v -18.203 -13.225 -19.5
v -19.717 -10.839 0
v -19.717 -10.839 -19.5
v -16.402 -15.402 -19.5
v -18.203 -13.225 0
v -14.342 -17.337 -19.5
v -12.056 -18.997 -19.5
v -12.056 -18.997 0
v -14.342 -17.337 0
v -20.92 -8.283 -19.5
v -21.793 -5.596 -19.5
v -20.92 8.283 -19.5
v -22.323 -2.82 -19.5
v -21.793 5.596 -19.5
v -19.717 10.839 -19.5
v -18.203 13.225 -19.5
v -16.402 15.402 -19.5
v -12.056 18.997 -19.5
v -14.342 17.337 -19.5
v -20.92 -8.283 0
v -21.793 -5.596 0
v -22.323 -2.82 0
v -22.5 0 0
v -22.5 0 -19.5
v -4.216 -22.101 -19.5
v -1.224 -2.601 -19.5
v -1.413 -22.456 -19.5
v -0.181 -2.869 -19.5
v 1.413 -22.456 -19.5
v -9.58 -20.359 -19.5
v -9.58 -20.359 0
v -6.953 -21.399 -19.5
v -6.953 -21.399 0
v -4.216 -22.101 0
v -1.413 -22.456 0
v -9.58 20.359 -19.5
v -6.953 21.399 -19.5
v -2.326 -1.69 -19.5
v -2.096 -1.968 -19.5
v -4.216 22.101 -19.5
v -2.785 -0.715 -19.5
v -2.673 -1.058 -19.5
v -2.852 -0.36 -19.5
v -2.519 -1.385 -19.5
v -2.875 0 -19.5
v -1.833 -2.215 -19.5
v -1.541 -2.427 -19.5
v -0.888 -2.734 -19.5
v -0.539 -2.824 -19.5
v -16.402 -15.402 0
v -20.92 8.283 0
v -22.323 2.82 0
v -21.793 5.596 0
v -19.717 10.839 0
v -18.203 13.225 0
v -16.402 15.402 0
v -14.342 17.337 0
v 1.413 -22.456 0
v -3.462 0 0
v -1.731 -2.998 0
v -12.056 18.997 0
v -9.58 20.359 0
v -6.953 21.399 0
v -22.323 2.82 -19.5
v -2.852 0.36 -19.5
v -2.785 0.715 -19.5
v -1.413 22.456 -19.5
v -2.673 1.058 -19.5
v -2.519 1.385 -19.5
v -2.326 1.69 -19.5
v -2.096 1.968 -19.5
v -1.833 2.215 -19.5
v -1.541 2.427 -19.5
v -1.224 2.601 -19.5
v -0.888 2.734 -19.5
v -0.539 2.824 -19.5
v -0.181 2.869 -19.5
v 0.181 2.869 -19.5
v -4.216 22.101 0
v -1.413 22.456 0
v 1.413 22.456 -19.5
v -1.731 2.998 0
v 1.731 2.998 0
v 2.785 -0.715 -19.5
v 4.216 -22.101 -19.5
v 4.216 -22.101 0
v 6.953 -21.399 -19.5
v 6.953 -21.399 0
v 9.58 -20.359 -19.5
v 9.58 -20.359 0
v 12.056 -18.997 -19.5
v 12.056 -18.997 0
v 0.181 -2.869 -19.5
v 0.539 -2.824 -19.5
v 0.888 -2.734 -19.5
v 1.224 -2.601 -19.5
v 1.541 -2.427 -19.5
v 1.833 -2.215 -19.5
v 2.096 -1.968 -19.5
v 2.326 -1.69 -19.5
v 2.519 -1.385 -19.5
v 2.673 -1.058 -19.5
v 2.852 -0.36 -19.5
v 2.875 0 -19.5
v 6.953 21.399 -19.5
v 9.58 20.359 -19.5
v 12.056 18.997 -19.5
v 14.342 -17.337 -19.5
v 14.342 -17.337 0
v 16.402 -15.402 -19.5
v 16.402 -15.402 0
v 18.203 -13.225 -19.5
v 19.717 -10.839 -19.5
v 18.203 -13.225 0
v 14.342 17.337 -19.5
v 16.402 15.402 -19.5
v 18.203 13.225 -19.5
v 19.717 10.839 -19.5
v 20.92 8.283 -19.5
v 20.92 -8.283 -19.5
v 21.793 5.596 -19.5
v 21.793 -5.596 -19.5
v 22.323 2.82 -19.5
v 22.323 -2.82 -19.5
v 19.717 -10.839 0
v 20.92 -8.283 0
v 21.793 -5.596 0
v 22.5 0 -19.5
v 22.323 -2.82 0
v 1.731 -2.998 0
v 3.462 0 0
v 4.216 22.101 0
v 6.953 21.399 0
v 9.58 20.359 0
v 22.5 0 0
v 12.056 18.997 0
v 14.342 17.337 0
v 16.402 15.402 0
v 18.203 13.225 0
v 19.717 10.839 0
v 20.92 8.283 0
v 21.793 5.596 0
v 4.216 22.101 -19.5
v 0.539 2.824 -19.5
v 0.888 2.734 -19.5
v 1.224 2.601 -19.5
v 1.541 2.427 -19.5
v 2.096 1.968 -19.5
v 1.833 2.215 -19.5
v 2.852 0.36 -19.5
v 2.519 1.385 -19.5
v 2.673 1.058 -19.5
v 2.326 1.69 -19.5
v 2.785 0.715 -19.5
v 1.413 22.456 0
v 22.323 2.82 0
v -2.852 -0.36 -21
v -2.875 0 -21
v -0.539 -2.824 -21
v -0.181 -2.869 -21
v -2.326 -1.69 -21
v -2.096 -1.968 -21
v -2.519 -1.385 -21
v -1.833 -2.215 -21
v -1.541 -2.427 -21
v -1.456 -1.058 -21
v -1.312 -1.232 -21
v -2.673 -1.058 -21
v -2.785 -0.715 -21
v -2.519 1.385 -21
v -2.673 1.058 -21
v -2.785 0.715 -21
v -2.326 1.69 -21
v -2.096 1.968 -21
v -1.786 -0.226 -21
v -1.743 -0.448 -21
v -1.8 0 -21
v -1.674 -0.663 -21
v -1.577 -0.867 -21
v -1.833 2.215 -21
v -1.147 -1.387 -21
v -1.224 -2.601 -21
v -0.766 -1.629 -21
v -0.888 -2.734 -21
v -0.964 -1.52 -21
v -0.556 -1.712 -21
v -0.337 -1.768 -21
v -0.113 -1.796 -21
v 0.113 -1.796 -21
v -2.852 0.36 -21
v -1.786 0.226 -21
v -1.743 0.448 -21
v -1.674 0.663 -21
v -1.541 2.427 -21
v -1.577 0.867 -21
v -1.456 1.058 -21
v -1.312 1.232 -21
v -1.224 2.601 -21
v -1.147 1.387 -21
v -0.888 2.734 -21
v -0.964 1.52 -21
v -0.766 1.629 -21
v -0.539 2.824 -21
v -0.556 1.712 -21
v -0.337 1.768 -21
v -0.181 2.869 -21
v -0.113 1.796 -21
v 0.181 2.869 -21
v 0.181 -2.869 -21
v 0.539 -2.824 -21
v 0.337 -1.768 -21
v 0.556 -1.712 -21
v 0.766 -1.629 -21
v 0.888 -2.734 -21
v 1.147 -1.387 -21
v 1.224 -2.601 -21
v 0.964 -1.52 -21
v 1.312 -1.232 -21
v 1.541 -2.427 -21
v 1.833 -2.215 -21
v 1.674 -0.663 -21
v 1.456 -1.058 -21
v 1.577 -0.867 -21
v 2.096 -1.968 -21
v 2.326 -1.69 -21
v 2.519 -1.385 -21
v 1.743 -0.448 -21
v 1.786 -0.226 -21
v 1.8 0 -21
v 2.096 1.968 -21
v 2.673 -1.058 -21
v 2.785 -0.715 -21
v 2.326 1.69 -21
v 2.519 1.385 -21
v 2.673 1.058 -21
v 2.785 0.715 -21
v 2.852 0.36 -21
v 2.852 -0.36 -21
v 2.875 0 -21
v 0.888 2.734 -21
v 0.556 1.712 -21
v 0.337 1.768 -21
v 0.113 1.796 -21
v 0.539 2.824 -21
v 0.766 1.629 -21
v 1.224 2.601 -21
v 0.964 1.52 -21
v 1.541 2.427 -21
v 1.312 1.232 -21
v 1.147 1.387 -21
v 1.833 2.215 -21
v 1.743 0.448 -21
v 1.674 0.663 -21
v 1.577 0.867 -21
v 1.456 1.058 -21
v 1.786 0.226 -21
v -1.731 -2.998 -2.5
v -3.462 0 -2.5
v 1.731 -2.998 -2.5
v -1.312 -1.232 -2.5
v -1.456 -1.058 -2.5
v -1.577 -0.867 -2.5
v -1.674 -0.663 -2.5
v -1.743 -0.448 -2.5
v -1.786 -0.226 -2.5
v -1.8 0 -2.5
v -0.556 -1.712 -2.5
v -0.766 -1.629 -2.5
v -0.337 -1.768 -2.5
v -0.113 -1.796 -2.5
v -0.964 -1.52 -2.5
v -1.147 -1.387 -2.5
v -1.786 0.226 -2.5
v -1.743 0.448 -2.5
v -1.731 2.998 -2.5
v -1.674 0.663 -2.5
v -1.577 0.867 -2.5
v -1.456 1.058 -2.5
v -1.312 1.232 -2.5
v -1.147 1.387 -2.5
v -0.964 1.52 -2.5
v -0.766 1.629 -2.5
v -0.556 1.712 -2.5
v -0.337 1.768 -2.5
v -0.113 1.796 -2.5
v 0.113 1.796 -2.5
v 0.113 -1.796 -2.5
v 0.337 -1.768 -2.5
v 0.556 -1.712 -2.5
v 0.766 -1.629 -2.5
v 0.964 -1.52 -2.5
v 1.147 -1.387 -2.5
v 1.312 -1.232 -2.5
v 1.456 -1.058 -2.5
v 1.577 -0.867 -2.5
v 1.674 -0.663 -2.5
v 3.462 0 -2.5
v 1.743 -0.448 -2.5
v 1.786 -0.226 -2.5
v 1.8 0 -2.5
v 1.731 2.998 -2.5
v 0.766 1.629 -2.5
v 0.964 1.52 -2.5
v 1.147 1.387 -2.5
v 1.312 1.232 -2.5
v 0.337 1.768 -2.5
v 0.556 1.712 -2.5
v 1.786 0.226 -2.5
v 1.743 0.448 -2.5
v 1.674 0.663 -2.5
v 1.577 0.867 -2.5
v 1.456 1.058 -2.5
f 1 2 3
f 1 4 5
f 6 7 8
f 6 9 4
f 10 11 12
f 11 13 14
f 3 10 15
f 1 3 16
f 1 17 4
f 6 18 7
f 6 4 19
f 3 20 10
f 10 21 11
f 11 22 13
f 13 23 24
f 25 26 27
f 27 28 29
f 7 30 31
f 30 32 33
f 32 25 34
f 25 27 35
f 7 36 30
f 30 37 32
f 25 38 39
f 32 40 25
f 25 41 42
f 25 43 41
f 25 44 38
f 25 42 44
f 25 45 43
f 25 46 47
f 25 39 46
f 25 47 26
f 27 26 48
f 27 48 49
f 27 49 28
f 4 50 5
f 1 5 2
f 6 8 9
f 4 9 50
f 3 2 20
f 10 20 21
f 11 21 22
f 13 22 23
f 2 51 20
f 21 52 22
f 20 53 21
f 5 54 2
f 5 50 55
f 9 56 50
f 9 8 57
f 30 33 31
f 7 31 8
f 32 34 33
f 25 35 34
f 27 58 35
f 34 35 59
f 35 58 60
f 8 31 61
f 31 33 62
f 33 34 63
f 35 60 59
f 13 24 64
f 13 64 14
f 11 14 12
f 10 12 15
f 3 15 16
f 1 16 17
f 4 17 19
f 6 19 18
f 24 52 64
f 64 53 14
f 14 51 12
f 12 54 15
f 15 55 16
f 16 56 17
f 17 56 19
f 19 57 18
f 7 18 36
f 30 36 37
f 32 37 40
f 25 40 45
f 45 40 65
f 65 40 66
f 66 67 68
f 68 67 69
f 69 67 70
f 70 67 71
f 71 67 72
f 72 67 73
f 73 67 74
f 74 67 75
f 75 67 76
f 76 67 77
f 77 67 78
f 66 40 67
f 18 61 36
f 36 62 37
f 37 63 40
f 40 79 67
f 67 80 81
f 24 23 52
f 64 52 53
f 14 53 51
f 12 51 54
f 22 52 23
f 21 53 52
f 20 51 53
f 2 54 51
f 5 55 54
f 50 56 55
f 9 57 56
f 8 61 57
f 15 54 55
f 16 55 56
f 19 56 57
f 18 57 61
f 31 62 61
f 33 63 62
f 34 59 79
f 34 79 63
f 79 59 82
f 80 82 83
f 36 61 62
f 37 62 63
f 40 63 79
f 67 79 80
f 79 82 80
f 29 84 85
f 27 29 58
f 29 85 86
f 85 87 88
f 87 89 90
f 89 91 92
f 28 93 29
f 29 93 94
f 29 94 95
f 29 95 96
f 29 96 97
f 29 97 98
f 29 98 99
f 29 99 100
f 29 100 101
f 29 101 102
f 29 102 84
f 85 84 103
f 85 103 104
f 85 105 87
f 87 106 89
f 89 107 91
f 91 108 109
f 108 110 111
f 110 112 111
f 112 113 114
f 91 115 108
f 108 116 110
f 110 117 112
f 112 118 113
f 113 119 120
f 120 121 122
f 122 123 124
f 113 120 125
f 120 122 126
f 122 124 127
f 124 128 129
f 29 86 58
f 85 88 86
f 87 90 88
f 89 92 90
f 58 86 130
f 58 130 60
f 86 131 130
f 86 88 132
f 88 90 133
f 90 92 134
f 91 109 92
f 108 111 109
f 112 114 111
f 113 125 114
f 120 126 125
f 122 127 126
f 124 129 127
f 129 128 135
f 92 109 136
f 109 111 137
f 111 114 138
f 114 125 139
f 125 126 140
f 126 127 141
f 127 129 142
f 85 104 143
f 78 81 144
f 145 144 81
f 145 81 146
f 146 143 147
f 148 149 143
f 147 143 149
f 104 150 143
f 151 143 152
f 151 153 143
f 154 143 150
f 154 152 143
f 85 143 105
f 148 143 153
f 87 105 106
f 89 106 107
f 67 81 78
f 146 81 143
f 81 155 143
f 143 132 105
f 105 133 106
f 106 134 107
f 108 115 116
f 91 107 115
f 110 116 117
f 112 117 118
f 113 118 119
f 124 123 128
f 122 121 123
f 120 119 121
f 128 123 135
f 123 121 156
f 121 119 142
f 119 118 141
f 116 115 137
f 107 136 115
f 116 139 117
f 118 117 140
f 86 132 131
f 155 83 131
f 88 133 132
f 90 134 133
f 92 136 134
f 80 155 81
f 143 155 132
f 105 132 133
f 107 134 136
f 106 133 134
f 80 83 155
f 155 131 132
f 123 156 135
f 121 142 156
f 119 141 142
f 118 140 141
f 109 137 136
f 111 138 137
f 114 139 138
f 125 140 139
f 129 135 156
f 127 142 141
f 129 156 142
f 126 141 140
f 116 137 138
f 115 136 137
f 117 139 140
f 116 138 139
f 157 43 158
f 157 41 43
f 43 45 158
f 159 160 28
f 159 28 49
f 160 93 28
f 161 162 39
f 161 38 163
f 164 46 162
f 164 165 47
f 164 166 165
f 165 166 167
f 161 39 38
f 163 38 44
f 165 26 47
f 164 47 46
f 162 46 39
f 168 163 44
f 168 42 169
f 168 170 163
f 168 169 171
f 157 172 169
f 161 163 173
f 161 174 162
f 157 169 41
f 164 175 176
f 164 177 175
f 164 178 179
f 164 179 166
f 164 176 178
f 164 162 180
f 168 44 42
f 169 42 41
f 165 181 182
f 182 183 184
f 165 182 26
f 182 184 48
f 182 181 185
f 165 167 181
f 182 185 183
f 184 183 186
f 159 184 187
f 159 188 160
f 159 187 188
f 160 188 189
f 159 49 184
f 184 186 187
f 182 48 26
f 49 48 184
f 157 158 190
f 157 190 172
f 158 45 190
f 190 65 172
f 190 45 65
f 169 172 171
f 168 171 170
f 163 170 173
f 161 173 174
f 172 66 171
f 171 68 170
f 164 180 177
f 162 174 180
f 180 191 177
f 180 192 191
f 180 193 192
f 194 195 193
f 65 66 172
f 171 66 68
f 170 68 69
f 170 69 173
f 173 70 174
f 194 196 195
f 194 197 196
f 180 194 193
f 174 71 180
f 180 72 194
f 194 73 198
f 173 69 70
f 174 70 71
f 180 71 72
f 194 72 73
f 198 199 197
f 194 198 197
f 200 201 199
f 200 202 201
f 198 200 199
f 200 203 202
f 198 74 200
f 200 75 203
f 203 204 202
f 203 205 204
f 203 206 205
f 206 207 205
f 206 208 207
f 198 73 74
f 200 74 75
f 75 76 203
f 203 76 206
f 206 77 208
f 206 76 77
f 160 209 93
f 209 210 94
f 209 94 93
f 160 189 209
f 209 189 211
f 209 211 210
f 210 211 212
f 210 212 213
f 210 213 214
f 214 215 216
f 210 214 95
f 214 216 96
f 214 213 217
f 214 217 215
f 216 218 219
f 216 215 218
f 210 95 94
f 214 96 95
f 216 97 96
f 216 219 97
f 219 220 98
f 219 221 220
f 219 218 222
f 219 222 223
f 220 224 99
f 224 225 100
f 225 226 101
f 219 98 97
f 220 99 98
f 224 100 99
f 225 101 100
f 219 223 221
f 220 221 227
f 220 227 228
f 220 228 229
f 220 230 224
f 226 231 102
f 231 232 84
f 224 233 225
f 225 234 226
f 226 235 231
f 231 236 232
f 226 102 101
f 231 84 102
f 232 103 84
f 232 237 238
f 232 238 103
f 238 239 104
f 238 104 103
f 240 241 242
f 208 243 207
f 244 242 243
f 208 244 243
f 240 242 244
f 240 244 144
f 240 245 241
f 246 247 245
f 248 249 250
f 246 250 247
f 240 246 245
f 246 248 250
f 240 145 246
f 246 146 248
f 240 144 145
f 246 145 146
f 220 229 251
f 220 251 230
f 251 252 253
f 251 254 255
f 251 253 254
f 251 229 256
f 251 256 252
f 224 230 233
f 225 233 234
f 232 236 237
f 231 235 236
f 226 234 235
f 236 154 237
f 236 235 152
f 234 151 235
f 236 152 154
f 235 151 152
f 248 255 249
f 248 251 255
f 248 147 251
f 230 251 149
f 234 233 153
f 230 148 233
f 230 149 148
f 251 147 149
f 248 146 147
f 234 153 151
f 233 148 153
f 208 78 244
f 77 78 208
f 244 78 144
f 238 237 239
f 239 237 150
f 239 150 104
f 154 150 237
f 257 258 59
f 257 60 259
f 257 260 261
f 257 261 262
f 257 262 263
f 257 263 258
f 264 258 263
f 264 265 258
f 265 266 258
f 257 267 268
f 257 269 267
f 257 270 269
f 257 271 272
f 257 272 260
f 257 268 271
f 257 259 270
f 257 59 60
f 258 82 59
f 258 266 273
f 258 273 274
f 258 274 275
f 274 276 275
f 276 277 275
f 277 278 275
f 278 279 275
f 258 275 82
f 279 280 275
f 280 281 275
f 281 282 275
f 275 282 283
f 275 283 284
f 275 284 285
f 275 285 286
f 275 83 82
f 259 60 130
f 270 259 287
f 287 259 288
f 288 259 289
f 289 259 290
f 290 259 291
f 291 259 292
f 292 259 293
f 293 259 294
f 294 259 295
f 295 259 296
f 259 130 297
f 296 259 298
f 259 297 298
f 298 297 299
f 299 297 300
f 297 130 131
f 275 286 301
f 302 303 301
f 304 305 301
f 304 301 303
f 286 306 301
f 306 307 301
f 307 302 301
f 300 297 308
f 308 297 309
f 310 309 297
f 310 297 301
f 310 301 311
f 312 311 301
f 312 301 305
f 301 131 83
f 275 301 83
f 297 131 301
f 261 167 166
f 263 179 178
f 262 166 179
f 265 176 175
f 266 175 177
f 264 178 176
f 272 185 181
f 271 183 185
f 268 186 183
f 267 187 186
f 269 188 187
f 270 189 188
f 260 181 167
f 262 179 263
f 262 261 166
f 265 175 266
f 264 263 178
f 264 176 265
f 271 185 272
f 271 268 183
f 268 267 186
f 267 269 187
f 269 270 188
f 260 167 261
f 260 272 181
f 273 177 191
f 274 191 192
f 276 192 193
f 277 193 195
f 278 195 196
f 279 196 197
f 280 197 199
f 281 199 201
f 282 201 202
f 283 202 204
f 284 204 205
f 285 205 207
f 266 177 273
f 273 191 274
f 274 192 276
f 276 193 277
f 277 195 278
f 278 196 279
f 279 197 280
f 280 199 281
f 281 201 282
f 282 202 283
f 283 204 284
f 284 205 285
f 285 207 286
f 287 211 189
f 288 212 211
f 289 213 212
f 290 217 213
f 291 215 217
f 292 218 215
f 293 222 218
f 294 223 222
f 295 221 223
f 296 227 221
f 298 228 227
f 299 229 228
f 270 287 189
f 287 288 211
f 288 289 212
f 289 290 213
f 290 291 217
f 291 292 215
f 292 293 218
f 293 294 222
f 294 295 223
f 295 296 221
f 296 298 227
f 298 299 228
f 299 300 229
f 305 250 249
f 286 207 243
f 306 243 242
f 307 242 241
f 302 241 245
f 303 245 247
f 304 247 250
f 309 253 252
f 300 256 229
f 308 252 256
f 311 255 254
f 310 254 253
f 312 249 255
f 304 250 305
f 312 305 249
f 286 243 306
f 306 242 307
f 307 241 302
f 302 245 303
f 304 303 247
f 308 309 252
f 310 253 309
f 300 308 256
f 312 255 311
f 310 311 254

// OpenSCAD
$fn = 50;


difference() {
	union() {
		translate(v = [0, 0, -19.5000000000]) {
			cylinder(h = 19.5000000000, r = 22.5000000000);
		}
		#translate(v = [0, 0, -21.0000000000]) {
			cylinder(h = 21, r = 2.8750000000);
		}
	}
	union() {
		translate(v = [0, 0, 0]) {
			rotate(a = [0, 0, 0]) {
				difference() {
					union() {
						translate(v = [0, 0, -2.5000000000]) {
							linear_extrude(height = 2.5000000000) {
								polygon(points = [[3.4620000000, 0.0000000000], [1.7310000000, 2.9981799479], [-1.7310000000, 2.9981799479], [-3.4620000000, 0.0000000000], [-1.7310000000, -2.9981799479], [1.7310000000, -2.9981799479]]);
							}
						}
					}
					union();
				}
			}
		}
		#translate(v = [0, 0, -100.0000000000]) {
			cylinder(h = 200, r = 1.8000000000);
		}
	}
}
